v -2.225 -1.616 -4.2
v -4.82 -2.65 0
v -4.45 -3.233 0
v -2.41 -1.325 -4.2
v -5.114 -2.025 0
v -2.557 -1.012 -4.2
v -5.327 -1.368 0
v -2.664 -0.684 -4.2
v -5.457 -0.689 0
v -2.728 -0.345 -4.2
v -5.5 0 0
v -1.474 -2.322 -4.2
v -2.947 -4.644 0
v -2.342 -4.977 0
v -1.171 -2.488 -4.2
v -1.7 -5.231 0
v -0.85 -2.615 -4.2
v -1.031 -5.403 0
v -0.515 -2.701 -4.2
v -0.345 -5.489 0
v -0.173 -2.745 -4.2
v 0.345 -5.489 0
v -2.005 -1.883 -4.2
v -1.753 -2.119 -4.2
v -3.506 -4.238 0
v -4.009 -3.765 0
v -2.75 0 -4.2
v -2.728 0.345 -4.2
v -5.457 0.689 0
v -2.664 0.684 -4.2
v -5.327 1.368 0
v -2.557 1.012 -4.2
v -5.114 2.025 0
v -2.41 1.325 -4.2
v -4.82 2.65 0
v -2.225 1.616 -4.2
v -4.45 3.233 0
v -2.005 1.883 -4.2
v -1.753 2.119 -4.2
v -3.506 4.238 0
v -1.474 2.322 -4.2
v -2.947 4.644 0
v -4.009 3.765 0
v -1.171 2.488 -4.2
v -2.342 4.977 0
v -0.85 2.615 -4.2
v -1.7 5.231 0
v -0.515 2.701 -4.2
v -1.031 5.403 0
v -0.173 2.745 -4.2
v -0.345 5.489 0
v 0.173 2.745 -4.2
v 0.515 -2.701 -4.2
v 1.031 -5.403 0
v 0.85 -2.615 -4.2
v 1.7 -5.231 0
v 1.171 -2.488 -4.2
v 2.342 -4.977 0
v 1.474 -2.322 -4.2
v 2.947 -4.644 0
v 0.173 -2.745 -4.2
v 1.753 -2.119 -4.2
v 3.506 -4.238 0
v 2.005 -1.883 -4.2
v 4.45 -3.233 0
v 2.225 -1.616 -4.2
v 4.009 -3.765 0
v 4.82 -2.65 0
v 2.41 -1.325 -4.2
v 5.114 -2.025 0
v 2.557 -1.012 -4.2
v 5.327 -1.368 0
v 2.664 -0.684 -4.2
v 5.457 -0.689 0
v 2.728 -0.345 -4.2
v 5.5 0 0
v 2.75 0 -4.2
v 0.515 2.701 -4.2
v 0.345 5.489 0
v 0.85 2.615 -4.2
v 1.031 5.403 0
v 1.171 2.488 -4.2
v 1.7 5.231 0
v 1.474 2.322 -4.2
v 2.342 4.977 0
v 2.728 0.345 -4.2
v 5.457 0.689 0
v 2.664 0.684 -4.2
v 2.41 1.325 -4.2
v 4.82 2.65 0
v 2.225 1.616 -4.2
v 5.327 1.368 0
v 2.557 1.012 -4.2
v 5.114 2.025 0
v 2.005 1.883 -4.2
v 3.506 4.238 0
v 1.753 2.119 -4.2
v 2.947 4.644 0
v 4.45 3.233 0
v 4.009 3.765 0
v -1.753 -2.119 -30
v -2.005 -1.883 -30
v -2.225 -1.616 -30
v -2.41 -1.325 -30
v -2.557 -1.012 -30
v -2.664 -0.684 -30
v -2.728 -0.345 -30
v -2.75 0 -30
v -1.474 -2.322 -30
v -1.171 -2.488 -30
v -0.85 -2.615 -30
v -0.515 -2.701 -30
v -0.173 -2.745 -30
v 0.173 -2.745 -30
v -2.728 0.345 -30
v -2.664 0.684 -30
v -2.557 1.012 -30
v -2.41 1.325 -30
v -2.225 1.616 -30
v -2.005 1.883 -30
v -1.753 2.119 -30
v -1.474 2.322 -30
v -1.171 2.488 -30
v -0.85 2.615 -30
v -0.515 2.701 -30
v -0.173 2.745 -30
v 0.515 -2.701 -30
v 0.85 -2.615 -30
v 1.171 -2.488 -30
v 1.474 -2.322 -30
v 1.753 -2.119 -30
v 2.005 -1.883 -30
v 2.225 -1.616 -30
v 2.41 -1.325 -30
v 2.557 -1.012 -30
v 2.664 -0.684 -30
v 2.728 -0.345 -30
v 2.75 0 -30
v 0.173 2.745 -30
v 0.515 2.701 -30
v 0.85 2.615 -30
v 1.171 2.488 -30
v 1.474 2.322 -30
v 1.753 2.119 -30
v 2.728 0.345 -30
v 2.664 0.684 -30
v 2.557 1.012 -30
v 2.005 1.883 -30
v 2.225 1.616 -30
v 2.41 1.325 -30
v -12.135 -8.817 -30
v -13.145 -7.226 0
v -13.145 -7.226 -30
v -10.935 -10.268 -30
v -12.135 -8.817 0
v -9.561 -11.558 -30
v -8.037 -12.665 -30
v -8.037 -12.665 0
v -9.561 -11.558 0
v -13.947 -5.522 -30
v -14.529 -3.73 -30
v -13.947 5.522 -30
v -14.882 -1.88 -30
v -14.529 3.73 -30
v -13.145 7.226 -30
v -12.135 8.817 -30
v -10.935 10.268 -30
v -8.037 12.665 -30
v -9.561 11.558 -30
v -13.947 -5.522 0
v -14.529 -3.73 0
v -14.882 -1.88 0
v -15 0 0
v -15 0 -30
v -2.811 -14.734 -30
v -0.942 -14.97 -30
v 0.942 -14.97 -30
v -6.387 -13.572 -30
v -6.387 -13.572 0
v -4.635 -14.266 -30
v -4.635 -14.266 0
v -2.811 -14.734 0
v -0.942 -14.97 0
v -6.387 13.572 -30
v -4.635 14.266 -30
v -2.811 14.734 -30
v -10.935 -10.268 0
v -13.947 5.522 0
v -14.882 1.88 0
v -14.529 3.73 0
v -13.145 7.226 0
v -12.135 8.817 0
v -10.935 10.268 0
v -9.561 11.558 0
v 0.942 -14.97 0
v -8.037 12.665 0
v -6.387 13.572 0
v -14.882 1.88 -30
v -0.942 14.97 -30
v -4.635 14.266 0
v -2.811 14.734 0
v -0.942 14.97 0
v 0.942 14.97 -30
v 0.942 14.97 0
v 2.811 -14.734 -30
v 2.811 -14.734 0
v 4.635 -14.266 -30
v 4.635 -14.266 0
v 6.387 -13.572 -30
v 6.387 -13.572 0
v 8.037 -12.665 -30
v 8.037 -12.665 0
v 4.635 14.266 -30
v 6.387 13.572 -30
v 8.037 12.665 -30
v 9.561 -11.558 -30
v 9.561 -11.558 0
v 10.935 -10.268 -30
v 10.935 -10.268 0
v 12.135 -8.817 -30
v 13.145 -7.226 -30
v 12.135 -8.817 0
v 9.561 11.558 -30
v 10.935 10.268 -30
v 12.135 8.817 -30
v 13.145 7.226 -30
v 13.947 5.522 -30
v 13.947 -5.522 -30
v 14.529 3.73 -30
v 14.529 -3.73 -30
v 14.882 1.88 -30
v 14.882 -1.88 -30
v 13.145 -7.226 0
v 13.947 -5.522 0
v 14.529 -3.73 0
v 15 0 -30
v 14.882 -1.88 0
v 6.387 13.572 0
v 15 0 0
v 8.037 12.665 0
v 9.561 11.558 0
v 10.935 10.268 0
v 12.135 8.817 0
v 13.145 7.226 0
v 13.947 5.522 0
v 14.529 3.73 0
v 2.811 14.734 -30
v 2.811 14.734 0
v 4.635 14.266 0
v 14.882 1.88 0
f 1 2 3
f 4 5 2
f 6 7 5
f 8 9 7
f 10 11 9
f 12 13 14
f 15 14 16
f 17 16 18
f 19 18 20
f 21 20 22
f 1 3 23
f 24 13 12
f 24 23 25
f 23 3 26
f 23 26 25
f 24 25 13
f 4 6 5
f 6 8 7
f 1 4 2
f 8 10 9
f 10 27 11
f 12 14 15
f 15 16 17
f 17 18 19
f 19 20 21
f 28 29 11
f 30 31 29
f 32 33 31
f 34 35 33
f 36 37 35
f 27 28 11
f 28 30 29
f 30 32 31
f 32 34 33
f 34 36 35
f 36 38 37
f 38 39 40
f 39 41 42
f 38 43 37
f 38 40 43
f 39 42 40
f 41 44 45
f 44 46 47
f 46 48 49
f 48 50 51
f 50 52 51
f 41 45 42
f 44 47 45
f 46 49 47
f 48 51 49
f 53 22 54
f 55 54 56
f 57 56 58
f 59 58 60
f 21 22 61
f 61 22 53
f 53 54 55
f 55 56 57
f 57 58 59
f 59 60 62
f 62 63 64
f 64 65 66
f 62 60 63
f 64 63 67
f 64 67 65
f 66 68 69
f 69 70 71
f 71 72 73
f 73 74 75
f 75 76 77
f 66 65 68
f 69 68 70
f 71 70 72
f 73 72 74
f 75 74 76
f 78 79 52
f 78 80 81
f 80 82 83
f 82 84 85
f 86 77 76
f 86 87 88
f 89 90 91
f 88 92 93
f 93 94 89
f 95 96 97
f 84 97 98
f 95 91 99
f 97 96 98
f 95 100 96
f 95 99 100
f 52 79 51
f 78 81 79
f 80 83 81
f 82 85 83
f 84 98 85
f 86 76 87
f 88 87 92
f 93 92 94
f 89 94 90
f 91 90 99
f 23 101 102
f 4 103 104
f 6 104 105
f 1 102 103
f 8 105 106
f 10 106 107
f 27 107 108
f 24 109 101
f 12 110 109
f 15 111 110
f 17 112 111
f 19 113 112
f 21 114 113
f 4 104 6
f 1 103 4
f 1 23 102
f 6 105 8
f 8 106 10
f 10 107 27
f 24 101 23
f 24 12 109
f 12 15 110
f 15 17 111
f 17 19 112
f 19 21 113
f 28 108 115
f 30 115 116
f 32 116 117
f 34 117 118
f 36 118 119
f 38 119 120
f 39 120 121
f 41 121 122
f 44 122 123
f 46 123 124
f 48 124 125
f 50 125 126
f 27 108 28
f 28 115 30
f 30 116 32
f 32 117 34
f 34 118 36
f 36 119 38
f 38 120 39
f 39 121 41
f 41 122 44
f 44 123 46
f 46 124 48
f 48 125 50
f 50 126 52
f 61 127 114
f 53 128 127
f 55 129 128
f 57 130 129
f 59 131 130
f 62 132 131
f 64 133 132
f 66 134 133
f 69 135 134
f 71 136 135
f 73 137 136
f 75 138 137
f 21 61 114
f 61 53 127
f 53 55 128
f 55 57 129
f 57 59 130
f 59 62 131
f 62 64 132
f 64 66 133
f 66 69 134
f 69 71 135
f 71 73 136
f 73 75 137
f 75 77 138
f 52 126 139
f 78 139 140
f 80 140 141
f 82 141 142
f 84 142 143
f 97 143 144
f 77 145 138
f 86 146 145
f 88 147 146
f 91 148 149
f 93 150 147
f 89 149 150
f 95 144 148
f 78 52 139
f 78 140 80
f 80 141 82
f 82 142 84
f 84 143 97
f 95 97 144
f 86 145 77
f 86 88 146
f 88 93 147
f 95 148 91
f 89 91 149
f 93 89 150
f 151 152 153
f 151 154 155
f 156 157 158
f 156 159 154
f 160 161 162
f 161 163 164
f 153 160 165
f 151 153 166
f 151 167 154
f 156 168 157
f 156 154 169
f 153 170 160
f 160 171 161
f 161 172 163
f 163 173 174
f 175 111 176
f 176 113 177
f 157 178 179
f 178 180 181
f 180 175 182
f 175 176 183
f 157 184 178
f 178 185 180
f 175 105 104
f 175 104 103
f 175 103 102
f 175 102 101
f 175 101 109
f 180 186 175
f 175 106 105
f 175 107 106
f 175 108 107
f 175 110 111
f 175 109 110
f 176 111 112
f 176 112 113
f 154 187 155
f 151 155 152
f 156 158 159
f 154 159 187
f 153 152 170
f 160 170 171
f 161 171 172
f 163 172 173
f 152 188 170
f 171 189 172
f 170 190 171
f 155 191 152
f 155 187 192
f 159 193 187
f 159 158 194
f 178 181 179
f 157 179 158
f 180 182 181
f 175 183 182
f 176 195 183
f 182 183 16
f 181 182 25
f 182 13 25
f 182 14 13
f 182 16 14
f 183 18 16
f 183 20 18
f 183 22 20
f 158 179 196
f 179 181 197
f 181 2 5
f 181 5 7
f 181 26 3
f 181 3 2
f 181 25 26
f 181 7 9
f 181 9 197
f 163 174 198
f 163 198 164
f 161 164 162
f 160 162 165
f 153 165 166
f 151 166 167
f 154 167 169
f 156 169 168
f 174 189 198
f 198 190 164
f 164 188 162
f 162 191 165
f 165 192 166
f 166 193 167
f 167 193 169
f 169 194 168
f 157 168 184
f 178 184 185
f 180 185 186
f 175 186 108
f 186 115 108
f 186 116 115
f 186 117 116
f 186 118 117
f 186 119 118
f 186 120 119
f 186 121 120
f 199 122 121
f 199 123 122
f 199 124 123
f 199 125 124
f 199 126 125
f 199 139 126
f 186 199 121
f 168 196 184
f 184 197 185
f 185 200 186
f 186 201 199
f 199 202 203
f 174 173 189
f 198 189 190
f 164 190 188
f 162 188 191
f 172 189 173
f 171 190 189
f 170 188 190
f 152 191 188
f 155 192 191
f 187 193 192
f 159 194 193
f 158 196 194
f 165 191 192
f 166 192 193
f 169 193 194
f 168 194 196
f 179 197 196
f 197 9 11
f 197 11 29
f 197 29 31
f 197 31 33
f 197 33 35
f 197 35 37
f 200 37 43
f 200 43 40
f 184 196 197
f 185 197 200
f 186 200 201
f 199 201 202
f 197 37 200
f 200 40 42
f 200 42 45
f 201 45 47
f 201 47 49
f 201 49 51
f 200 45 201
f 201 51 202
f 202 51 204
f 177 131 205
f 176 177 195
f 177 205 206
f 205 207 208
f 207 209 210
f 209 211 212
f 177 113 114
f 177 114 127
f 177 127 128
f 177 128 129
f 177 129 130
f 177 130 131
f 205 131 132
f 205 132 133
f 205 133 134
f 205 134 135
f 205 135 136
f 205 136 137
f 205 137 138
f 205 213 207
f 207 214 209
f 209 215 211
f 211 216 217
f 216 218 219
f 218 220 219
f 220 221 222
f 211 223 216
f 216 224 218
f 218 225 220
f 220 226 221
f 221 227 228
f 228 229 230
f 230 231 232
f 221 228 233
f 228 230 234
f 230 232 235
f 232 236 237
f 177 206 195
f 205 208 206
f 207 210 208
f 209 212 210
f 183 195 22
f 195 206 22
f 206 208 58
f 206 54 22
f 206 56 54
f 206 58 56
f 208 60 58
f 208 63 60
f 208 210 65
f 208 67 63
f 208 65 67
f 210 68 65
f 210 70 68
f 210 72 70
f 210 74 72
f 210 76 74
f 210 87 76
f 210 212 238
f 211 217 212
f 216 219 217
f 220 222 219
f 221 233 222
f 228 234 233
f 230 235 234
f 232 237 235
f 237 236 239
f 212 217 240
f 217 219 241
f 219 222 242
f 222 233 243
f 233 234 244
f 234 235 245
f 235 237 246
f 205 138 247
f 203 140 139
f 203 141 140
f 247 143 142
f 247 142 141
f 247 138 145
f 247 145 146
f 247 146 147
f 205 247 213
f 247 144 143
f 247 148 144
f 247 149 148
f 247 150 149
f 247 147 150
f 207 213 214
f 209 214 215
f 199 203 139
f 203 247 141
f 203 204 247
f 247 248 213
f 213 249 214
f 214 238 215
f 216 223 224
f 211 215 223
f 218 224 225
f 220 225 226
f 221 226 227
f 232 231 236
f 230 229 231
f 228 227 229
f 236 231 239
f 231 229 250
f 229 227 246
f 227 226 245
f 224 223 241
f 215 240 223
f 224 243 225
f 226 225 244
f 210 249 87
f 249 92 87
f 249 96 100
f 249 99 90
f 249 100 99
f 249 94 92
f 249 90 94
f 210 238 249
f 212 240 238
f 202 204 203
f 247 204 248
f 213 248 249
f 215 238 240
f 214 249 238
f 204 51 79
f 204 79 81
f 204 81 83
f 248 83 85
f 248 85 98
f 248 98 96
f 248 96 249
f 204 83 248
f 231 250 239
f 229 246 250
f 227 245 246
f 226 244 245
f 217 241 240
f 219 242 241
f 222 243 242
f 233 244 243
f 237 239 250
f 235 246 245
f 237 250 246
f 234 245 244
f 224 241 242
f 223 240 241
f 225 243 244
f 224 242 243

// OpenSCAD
$fn = 50;

difference() {
	union() {
		translate(v = [0, 0, -30.0]) {
			cylinder(h = 30, r = 15.0);
		}
	}
	union() {
		translate(v = [0, 0, 0]) {
			rotate(a = [0, 0, 0]) {
				difference() {
					union() {
						translate(v = [0, 0, -33.0]) {
							cylinder(h = 33, r = 2.25);
						}
						translate(v = [0, 0, -4.2]) {
							cylinder(h = 4.2, r1 = 2.75, r2 = 5.5);
						}
						translate(v = [0, 0, -33.0]) {
							cylinder(h = 33, r = 2.75);
						}
						translate(v = [0, 0, -33.0]) {
							cylinder(h = 33, r = 2.25);
						}
					}
					union();
				}
			}
		}
	}
}
